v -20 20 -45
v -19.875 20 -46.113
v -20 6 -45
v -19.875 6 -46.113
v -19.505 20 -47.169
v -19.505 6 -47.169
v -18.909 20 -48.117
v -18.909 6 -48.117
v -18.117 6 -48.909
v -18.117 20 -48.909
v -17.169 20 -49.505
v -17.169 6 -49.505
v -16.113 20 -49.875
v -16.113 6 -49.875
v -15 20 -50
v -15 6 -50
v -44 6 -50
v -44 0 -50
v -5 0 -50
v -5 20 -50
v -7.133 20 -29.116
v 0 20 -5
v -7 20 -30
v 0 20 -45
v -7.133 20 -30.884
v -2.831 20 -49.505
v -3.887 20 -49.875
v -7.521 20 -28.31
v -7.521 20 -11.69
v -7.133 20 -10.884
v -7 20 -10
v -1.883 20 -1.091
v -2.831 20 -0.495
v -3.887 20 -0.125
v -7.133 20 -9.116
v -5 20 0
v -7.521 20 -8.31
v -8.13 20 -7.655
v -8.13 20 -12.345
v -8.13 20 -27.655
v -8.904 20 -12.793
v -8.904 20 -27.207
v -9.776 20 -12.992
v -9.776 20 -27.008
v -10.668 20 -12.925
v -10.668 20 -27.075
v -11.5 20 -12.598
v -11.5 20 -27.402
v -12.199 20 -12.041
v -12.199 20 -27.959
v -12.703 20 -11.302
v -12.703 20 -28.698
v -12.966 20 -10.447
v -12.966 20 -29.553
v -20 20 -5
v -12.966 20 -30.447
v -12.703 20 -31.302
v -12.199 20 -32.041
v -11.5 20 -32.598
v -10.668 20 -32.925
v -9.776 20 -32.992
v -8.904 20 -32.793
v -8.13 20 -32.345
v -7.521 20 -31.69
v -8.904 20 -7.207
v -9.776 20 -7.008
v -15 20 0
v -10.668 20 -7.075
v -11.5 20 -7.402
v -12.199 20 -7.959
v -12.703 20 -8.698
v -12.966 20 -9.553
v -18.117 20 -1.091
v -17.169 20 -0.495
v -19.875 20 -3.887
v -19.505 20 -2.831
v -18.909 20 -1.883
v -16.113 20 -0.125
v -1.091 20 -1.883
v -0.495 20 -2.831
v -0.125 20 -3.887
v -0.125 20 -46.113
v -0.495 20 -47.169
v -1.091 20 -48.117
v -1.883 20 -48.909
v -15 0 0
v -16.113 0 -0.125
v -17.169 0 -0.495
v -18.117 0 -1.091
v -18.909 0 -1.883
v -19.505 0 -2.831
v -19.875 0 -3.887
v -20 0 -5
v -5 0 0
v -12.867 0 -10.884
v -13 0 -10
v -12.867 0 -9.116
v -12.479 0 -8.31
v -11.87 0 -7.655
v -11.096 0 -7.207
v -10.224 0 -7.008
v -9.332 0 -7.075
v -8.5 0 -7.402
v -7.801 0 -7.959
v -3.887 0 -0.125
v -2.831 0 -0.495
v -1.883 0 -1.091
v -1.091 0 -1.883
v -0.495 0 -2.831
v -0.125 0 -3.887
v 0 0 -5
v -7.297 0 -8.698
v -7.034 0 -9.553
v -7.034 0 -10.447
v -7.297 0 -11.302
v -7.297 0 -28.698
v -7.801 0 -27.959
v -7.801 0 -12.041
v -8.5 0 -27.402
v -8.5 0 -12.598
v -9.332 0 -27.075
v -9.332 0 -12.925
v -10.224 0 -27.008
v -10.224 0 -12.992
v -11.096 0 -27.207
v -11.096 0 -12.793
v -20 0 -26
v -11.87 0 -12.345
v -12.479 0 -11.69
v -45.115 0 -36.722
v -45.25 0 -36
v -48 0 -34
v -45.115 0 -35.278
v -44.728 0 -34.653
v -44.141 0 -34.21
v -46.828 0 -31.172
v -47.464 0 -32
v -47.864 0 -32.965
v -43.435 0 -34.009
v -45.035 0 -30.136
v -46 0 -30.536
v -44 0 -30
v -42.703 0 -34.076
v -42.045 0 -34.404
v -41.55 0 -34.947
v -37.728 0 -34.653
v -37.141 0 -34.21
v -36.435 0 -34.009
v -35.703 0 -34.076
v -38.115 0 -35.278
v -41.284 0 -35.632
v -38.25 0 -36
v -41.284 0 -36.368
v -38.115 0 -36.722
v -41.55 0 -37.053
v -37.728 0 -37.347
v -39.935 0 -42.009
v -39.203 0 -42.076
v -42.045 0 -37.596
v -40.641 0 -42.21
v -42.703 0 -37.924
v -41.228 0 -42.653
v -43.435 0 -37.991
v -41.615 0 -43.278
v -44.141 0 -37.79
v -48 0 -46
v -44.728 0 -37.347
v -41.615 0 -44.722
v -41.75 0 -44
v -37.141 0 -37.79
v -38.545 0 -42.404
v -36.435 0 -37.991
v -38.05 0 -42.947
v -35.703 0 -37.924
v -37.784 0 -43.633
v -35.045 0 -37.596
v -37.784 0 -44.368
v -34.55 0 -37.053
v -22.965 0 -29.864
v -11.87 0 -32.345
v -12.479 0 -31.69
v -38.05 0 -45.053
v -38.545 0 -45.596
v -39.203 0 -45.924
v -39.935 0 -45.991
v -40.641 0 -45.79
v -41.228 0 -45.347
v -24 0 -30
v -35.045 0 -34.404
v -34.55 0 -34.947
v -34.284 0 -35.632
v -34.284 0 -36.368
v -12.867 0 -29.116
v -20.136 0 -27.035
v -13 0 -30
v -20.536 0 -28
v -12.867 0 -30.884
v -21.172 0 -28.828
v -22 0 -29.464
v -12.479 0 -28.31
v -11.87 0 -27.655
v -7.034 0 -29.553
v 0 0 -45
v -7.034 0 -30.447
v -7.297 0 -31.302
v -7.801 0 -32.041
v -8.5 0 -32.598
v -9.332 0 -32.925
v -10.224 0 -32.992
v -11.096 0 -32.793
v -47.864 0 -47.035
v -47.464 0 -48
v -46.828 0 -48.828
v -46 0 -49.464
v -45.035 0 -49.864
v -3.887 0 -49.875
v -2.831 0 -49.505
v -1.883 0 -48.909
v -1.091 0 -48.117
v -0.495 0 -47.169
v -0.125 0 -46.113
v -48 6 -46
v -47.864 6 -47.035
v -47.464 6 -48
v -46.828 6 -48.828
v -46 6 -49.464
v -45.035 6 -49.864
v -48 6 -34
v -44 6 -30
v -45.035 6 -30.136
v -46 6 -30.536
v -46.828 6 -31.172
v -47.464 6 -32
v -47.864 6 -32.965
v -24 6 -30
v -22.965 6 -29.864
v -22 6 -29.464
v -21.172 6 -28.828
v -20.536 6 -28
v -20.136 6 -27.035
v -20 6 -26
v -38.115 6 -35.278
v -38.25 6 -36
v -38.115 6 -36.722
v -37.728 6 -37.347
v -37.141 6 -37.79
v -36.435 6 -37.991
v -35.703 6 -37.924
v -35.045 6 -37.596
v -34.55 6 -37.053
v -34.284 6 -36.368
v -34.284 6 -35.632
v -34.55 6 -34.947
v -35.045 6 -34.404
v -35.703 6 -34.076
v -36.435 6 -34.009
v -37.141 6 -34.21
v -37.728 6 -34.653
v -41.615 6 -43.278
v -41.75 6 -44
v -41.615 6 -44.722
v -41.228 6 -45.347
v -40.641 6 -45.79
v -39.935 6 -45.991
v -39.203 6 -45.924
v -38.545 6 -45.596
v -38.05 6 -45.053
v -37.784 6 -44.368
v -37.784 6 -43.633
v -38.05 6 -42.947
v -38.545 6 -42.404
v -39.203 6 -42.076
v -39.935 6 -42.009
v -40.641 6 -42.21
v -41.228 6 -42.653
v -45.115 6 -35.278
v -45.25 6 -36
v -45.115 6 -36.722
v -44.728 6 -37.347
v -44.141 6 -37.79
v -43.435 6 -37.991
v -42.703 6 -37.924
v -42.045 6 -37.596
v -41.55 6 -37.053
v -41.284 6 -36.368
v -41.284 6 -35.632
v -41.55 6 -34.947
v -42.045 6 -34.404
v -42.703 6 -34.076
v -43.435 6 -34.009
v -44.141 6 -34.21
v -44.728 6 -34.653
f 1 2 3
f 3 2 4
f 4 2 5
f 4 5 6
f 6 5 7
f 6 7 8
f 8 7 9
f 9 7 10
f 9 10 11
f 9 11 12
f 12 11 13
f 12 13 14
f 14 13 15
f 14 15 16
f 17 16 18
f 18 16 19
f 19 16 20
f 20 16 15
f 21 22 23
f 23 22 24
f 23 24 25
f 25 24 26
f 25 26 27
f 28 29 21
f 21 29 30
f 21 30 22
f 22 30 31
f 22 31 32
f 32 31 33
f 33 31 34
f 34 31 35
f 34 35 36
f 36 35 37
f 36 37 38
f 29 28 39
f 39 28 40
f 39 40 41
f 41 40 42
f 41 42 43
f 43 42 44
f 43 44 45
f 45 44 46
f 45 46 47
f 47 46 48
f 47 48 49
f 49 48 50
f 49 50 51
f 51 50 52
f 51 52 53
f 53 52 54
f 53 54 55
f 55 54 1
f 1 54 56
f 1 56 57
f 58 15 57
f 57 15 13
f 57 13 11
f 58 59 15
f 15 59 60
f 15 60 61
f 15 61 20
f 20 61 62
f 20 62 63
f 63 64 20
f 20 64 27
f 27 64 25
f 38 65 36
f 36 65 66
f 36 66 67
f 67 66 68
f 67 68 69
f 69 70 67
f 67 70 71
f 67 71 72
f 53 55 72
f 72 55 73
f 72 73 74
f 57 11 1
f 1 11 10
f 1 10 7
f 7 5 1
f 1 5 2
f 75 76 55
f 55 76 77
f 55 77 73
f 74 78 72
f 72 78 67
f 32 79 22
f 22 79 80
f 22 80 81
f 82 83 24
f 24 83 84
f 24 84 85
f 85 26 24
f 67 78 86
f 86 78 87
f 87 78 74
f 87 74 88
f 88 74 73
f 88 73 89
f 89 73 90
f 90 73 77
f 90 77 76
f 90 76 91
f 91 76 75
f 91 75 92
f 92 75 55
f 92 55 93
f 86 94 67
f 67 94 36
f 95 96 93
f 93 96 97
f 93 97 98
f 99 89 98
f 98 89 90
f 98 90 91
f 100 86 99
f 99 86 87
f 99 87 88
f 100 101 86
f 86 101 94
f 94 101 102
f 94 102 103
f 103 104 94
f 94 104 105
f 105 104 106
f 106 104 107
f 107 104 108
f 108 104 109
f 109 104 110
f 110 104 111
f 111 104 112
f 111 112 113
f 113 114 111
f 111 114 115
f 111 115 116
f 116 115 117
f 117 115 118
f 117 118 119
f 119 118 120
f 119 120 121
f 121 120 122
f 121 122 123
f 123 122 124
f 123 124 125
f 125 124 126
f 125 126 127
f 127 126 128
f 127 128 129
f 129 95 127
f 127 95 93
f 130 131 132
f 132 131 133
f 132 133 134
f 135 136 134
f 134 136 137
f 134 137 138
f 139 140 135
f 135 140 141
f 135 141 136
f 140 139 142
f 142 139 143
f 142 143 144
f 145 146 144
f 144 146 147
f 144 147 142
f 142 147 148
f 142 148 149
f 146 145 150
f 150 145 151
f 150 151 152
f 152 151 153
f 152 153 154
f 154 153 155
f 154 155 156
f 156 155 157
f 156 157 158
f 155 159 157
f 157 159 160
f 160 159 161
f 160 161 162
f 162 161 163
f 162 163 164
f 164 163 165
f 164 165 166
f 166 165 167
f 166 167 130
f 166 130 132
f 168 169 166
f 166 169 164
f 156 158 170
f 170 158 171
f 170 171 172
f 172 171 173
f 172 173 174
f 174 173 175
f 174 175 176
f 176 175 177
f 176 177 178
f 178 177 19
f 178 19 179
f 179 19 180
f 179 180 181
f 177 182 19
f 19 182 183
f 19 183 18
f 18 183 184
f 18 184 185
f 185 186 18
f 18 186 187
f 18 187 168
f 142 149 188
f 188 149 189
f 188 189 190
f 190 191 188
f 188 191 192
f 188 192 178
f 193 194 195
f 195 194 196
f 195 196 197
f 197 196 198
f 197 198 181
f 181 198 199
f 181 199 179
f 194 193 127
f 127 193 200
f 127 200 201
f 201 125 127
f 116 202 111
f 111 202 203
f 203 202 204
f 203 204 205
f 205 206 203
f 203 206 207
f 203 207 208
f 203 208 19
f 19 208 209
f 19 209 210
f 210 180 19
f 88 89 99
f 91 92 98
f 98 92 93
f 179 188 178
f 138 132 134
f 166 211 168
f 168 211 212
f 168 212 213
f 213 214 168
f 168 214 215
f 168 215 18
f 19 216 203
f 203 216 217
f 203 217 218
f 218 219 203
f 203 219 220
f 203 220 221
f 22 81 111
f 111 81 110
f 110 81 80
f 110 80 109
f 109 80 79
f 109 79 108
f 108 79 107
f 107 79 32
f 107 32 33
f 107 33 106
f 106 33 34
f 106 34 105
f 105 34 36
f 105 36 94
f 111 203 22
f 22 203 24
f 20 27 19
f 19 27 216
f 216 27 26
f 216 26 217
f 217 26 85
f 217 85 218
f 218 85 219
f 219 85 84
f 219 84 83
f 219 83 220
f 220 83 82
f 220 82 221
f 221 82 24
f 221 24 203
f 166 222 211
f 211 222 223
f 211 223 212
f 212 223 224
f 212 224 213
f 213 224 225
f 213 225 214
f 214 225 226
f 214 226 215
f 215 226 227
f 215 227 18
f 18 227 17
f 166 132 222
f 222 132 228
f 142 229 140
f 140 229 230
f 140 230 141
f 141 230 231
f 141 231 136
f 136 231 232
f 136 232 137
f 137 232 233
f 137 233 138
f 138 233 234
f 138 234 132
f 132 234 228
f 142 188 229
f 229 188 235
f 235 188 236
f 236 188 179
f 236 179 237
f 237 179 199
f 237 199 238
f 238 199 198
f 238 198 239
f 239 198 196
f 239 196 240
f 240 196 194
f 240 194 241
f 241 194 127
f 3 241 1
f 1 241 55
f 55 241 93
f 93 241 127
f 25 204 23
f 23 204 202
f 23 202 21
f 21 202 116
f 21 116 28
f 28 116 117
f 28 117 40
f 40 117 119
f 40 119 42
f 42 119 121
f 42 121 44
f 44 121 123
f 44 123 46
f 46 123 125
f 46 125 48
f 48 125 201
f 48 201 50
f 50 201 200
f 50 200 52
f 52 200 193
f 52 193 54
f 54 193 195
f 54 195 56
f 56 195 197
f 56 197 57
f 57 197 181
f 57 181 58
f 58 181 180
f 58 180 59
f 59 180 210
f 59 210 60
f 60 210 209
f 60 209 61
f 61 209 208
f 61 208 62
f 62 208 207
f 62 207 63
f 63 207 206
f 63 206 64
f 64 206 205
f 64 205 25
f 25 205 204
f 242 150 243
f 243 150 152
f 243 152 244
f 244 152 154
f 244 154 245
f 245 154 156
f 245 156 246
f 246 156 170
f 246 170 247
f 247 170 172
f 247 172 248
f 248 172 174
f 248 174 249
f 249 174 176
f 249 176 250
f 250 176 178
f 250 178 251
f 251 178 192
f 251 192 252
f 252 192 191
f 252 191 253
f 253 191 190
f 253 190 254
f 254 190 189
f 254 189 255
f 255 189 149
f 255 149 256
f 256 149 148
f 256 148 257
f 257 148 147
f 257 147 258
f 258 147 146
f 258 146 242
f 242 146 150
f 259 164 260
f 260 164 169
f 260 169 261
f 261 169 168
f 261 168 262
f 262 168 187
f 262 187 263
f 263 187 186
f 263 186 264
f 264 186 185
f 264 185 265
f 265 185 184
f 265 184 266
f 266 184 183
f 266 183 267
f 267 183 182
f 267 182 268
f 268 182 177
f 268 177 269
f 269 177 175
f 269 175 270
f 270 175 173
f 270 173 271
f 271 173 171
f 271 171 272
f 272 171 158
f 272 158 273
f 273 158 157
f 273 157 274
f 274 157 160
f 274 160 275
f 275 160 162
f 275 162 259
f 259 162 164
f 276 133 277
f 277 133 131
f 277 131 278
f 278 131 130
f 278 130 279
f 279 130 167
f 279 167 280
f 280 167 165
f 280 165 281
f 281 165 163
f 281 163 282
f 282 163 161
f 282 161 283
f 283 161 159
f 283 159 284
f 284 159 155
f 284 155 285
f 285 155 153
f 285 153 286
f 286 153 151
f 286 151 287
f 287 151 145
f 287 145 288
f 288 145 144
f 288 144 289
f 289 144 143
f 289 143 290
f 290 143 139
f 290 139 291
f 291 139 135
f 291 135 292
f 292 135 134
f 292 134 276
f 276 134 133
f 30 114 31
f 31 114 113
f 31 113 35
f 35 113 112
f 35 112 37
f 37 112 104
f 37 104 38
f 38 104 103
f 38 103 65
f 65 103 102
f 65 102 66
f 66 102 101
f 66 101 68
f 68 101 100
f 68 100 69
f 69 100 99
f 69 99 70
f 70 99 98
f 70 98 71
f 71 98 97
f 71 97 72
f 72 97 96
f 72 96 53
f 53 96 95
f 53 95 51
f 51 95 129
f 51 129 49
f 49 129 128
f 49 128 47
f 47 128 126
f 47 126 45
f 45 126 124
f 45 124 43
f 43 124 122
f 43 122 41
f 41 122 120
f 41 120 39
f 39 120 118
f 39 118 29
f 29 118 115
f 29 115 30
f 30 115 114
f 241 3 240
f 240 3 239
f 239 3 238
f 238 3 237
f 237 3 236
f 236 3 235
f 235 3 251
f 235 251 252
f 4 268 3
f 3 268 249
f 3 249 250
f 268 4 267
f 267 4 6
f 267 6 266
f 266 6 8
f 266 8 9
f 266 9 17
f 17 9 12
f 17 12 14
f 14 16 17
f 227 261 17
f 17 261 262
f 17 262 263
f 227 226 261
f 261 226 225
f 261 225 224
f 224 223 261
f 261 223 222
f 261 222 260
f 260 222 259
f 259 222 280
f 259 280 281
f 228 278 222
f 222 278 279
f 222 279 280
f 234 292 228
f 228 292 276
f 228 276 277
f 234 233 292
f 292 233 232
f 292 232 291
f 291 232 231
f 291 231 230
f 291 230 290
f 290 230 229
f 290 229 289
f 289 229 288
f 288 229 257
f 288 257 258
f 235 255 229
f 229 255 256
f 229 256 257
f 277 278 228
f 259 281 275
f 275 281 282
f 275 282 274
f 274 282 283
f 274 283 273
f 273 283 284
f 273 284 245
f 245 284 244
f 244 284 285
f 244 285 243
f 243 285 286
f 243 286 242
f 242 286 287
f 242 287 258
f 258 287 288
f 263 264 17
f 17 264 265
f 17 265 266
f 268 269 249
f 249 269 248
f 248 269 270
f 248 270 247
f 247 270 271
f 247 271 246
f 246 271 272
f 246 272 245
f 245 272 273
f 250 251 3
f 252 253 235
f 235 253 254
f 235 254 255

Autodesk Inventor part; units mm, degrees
ref_plane "YZ Plane" through (0, 0, 0) normal (1, 0, 0) x (0, 1, 0)
ref_plane "XZ Plane" through (0, 0, 0) normal (0, 1, 0) x (-1, 0, 0)
ref_plane "XY Plane" through (0, 0, 0) normal (0, 0, 1) x (1, 0, 0)
sketch "Sketch1" plane through (0, 0, 0) normal (0, 1, 0) x (-1, 0, 0)
  line L0 (0, 0) -> (20, 0)
  line L1 (20, 0) -> (20, -50)
  line L2 (20, -50) -> (0, -50)
  line L3 (0, -50) -> (0, 0)
  line L4 (0, -50) -> (48, -50)
  line L5 (48, -50) -> (48, -30)
  line L6 (48, -30) -> (0, -30)
  line L7 (0, -30) -> (0, -50)
  circle A0 centre (10, -10) radius 3
  circle A1 centre (10, -30) radius 3
  line L8 (20, -50) -> (20, -36)
  line L9 (20, -36) -> (31, -36)
  line L10 (31, -36) -> (36.25, -36)
  circle A2 centre (36.25, -36) radius 2
  line L11 (36.25, -36) -> (43.25, -36)
  circle A3 centre (43.25, -36) radius 2
  line L12 (39.75, -36) -> (39.75, -44)
  circle A4 centre (39.75, -44) radius 2
  point P0 (20, -30)
  dimension "d0" = 20
  dimension "d1" = 50
  dimension "d2" = 48
  dimension "d3" = 20
  dimension "d4" = 6
  dimension "d5" = 6
  dimension "d6" = 10
  dimension "d7" = 10
  dimension "d8" = 20
  dimension "d9" = 10
  dimension "d10" = 11
  dimension "d11" = 5.25
  dimension "d12" = 14
  dimension "d13" = 4
  dimension "d14" = 7
  dimension "d15" = 4
  dimension "d21" = 8
  dimension "d22" = 4
extrude "Extrusion1" add sketch "Sketch1" along normal blind 6 contours L0 L1 L6 A1 L3 | L6 A1 L1 L2 L3 | L6 L5 L4 L1
fillet "Fillet1" radius 4 6 edges at (-20, 3, 0) (0, 3, 0) (-20, 3, -30) (-48, 3, -30) (-48, 3, -50) (0, 3, -50)
sketch "Sketch2" plane through (0, 6, 0) normal (0, 1, 0) x (1, 0, 0)
  line L0 (0, 0) -> (-20, 0)
  line L1 (-20, 0) -> (-20, 50)
  line L2 (-20, 50) -> (0, 50)
  line L3 (0, 50) -> (0, 0)
  circle A0 centre (-10, 30) radius 3 projected
  circle A1 centre (-10, 30) radius 3
  circle A2 centre (-10, 10) radius 3 projected
  circle A3 centre (-10, 10) radius 3
  dimension "d23" = 20
  dimension "d24" = 50
extrude "Extrusion2" add sketch "Sketch2" along normal blind 14
fillet "Fillet2" radius 5 3 edges at (0, 13, -50) (0, 13, 0) (-20, 13, 0)
fillet "Fillet3" radius 5 1 edges at (-20, 13, -50)
properties part number "CableChain_Mount"
